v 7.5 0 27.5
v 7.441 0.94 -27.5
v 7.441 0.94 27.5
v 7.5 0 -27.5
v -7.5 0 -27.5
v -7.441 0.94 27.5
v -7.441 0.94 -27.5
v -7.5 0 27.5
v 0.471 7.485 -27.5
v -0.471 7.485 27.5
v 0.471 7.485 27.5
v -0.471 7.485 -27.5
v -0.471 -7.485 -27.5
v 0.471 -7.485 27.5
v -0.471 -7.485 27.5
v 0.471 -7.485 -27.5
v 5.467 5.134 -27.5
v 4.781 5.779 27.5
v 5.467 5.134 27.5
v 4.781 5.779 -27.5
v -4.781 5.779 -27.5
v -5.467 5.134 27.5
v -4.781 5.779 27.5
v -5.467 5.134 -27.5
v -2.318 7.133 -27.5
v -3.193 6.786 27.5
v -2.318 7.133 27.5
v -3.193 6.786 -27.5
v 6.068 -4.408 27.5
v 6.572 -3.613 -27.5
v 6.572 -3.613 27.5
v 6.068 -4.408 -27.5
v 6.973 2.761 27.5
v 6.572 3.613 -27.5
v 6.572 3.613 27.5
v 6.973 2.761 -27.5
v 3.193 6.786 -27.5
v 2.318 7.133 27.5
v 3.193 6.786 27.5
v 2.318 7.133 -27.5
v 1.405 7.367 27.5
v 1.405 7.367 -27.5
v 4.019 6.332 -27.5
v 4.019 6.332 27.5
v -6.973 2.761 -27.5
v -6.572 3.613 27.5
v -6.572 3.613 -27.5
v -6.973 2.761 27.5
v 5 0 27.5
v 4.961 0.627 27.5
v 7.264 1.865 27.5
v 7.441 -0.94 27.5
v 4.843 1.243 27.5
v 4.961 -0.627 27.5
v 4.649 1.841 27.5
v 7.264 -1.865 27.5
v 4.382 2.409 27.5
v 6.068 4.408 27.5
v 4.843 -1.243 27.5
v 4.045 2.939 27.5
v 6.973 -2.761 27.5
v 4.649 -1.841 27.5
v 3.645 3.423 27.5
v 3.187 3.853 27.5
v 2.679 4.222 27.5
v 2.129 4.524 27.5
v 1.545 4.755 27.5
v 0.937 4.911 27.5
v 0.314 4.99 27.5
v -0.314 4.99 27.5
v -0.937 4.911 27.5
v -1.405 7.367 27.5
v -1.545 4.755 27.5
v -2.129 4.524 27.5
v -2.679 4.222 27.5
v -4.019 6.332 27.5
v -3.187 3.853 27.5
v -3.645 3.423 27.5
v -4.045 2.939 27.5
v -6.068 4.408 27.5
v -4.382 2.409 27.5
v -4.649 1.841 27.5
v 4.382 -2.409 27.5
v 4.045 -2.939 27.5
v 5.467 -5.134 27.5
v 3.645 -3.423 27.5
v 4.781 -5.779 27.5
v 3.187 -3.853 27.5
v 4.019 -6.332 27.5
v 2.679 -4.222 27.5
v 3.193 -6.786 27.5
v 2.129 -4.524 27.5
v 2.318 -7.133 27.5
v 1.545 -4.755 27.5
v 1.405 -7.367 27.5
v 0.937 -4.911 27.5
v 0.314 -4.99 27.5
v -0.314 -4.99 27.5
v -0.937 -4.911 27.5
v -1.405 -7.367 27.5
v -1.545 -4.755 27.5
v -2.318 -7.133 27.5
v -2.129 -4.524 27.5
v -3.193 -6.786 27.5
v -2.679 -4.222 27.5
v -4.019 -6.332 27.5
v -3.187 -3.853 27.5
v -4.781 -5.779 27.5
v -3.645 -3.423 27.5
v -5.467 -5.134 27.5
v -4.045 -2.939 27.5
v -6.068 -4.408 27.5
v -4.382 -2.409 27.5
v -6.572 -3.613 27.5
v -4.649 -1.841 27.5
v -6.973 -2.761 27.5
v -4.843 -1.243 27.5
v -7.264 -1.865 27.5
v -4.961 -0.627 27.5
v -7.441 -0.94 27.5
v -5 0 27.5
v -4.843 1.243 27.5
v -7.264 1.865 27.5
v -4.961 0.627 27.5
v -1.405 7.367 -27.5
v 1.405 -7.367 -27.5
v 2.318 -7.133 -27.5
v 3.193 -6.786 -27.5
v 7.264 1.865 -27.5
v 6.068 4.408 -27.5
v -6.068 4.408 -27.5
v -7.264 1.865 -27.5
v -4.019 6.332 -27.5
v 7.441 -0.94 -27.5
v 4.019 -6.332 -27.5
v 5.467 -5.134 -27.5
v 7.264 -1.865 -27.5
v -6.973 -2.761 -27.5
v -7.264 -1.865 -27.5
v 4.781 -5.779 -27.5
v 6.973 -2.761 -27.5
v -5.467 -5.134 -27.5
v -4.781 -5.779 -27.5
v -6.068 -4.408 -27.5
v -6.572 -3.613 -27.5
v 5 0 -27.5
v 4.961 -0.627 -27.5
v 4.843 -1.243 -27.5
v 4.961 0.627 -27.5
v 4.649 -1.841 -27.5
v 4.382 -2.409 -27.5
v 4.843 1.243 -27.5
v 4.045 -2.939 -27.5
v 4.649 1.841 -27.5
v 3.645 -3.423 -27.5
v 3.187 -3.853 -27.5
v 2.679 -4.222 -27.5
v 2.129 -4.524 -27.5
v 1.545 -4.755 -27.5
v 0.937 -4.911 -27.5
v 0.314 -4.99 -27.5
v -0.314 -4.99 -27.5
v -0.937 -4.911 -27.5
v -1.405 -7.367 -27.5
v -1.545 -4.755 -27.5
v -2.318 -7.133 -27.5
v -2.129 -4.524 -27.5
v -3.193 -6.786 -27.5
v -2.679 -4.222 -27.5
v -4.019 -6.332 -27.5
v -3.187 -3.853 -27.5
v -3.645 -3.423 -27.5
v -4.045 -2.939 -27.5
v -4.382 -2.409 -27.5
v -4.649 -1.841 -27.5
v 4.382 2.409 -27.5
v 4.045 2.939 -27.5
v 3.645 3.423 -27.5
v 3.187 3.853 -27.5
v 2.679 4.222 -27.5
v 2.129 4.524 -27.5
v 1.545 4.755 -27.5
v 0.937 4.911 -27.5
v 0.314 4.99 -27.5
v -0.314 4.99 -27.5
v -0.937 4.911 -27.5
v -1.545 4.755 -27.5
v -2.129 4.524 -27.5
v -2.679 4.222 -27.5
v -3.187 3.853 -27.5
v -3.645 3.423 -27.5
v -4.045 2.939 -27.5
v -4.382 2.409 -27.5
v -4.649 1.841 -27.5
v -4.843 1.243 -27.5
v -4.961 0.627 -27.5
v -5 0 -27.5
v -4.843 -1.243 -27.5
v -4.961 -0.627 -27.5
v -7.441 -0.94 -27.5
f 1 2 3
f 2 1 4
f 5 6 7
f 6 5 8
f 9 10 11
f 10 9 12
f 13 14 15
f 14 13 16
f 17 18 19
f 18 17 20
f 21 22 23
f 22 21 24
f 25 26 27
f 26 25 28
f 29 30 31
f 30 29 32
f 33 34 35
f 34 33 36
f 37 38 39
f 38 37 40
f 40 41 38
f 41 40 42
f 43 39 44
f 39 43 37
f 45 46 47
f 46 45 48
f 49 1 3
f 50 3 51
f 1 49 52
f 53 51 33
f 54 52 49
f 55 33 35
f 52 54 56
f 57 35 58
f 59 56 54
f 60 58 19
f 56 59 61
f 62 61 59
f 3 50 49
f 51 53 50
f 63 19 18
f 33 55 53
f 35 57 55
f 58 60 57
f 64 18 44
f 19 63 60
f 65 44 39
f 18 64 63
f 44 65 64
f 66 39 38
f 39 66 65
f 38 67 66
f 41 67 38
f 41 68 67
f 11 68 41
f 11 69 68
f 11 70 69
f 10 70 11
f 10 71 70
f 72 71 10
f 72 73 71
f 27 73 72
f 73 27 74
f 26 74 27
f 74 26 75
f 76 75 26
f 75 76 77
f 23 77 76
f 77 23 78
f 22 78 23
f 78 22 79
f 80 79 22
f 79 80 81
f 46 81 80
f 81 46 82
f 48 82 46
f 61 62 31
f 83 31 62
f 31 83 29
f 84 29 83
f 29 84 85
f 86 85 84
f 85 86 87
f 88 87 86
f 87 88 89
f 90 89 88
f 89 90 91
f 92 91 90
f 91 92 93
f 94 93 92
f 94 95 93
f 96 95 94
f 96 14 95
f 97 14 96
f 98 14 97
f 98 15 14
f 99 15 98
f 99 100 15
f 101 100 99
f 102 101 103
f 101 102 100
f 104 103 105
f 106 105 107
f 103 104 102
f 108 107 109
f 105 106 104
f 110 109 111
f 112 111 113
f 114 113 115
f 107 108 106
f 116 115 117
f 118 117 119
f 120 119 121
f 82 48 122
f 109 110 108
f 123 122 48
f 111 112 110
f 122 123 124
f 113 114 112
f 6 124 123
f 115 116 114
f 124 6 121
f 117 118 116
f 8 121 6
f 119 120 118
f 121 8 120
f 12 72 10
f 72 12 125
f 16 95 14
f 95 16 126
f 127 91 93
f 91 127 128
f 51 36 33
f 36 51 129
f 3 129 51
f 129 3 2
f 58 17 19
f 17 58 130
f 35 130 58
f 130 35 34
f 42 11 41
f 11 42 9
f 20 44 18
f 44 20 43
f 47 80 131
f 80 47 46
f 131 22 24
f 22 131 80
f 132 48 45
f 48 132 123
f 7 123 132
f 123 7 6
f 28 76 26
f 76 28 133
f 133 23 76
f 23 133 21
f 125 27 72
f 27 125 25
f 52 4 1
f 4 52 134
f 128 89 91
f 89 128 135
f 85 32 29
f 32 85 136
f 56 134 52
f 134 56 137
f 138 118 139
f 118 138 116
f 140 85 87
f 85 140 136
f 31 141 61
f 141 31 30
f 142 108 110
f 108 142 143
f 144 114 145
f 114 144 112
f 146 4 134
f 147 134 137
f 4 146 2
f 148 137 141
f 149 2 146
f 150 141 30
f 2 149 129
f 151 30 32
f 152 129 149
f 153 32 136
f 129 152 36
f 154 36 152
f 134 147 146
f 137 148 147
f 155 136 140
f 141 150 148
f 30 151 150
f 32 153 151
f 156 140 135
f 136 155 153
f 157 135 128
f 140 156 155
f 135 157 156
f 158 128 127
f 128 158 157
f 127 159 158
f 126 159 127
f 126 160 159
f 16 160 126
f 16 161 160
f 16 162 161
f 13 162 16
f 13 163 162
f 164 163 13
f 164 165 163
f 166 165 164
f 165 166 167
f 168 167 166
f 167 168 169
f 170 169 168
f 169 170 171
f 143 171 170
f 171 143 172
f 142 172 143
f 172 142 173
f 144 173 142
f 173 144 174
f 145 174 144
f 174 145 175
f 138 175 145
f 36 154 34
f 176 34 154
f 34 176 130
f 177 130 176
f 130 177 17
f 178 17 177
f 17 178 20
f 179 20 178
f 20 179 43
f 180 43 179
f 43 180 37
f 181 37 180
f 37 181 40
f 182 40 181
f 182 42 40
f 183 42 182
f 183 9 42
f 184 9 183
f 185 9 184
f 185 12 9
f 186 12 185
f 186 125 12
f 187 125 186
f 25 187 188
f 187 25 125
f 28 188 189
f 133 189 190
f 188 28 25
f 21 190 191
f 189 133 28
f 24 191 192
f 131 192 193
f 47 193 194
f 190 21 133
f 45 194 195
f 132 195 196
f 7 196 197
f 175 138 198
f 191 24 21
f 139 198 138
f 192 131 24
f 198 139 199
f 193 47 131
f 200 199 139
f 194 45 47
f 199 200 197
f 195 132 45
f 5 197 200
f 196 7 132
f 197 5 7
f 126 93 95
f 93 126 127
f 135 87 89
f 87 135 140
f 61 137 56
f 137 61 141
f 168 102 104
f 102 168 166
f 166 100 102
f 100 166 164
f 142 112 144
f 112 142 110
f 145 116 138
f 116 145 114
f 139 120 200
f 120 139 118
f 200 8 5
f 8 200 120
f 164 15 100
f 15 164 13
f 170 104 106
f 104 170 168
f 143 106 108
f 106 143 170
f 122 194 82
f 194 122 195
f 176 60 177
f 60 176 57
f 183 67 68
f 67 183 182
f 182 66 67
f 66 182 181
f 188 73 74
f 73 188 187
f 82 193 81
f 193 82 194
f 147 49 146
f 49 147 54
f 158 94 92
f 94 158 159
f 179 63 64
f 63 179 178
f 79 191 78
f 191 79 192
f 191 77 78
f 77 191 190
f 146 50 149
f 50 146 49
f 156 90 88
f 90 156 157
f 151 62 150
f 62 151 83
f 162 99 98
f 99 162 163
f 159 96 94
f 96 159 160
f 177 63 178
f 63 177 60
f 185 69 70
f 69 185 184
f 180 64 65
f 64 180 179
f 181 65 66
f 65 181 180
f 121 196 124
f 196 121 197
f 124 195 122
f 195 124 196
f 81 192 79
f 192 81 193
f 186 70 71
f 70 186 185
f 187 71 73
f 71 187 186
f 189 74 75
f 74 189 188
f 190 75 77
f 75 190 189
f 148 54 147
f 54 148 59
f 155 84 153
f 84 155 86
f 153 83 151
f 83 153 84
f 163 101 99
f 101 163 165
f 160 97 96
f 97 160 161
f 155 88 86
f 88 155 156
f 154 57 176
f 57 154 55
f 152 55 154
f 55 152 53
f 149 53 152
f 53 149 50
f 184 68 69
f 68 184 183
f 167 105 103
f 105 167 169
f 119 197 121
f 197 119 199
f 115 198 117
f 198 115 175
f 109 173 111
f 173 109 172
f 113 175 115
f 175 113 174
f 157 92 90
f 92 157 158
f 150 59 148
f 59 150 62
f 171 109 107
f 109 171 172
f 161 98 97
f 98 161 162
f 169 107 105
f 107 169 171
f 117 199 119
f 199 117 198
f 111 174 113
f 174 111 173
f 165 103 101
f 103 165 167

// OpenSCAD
$fn = 50;


difference() {
	union() {
		translate(v = [0, 0, -27.5000000000]) {
			cylinder(h = 55, r = 7.5000000000);
		}
	}
	union() {
		translate(v = [0, 0, -100.0000000000]) {
			cylinder(h = 200, r = 5.0000000000);
		}
	}
}
